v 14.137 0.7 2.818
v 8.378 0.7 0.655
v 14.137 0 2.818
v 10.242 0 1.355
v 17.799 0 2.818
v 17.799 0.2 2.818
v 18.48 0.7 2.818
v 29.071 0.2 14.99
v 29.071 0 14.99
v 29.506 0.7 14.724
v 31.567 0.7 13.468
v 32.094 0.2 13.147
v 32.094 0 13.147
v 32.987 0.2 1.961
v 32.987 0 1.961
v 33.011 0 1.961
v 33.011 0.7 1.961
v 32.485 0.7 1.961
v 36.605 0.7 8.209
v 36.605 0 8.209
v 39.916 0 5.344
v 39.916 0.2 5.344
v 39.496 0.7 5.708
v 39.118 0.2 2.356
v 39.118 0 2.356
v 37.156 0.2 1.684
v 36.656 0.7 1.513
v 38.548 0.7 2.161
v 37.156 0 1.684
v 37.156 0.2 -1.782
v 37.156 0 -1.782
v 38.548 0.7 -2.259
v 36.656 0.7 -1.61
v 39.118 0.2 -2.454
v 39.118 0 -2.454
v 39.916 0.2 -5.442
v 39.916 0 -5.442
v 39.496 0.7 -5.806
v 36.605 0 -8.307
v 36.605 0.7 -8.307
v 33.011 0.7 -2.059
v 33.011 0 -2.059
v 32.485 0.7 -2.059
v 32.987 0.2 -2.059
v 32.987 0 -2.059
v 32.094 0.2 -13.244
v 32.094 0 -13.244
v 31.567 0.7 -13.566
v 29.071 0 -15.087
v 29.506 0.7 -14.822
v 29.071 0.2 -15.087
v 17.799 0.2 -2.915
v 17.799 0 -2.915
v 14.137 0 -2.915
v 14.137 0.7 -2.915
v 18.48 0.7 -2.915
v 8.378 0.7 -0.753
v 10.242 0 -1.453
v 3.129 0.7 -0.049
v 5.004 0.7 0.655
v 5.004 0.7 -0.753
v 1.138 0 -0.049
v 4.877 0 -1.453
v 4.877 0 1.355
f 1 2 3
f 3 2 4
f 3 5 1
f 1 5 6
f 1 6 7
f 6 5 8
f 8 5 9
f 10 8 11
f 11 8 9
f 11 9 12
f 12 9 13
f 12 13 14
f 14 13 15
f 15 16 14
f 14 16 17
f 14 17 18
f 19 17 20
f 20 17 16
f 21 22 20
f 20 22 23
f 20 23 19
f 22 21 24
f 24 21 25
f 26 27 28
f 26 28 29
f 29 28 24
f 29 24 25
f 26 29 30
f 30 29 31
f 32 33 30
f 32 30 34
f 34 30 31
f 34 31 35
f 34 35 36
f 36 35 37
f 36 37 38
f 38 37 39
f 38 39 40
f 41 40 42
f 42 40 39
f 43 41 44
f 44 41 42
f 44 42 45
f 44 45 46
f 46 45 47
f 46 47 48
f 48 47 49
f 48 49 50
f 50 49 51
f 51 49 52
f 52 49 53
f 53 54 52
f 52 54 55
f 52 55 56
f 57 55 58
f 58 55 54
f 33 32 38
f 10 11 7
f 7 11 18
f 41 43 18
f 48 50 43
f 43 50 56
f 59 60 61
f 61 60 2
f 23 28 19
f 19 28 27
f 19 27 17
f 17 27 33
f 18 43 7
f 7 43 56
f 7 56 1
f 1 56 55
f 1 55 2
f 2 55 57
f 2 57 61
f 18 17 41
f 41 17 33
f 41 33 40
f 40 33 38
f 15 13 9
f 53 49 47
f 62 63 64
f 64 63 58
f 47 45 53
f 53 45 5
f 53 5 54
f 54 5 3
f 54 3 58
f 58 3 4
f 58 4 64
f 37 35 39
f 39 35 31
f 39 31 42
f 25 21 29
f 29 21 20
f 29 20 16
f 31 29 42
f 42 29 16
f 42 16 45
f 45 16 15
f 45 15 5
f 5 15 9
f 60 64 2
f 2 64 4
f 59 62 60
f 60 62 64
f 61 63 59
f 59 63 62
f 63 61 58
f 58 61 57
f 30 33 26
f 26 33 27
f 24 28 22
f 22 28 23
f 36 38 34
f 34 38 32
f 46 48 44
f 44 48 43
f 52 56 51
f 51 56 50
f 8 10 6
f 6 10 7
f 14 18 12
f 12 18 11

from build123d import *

# Parameters (mm, degrees)
BOSS_EXTRUDE1_DEPTH = 0.7
CHAMFER1_SIZE       = 1
CHAMFER2_SIZE       = 0.5


with BuildPart() as part:
    # Sketch1 → Boss-Extrude1 (new body)
    with BuildSketch(Plane(origin=(0, 0, 0), x_dir=(1, 0, 0), z_dir=(0, 1, 0))):
        Polygon((0.284238857, 0.048748246), (4.822239021, 1.752850979), (11.041039678, 1.752850979), (14.137088798, 2.915474508), (17.798659013, 2.915474508), (29.070766186, 15.087446012), (32.094208001, 13.244081421), (32.986673125, 2.05865414), (33.011493829, 2.05865414), (36.605140674, 8.306952125), (39.91645027, 5.441925055), (39.11764025, 2.453830764), (37.15585938, 1.781640495), (37.15585938, -1.684144002), (39.11764025, -2.356334271), (39.91645027, -5.344428562), (36.605140674, -8.209455633), (33.011493829, -1.961157647), (32.986673125, -1.961157647), (32.094208001, -13.146584929), (29.070766186, -14.98994952), (17.798659013, -2.817978016), (14.137088798, -2.817978016), (11.041039678, -1.655354487), (4.822239021, -1.655354487), align=None)
    extrude(amount=BOSS_EXTRUDE1_DEPTH)

    # Chamfer1
    # the kernel refuses this chamfer: 1 mm, written as the material it takes off along each edge
    with BuildSketch(Plane(origin=(2.250556033, 0.7, -1.752850979), x_dir=(0, -0.9996219169112968, -0.02749587661058627), z_dir=(1, 0, 0))) as chamfer1_piece_1_section:
        Polygon((CHAMFER1_SIZE * 0.999621916911, -CHAMFER1_SIZE * 0.0274958766106), (-CHAMFER1_SIZE * 0.0274958766106, -CHAMFER1_SIZE * 0.999621916911), (0, 0), align=None)
    chamfer1_piece_1 = extrude(amount=11.362166633, mode=Mode.PRIVATE)
    chamfer1_piece_1 = split(chamfer1_piece_1, bisect_by=Plane(origin=(6.727578787, 0.358780421, -0.133066883), z_dir=(-0.3515489139570331, 0, -0.9361695151497034)), keep=Keep.TOP, mode=Mode.PRIVATE)
    add(chamfer1_piece_1, mode=Mode.SUBTRACT)
    with BuildSketch(Plane(origin=(-2.123292359, 0.7, 0.855324115), x_dir=(-0.00966614556074823, -0.9996219169112968, -0.025740801475148727), z_dir=(0.9361695151497034, 0, -0.351548913957033)), Plane(origin=(7.229770237, 0.7, 2.559426848), x_dir=(-0.00966614556074825, -0.9996219169112968, 0.025740801475148775), z_dir=(-0.9361695151497034, 0, -0.351548913957033))) as chamfer1_piece_2:
        Polygon((CHAMFER1_SIZE * 0.999621916911, -CHAMFER1_SIZE * 0.0274958766106), (-CHAMFER1_SIZE * 0.0274958766106, -CHAMFER1_SIZE * 0.999621916911), (0, 0), align=None)
    extrude(amount=9.990778854, mode=Mode.SUBTRACT)
    with BuildSketch(Plane(origin=(13.612722666, 0.7, 1.655354487), x_dir=(0, -0.9996219169112968, 0.02749587661058627), z_dir=(-1, 0, 0))) as chamfer1_piece_3_section:
        Polygon((CHAMFER1_SIZE * 0.999621916911, -CHAMFER1_SIZE * 0.0274958766106), (-CHAMFER1_SIZE * 0.0274958766106, -CHAMFER1_SIZE * 0.999621916911), (0, 0), align=None)
    chamfer1_piece_3 = extrude(amount=11.362166633, mode=Mode.PRIVATE)
    chamfer1_piece_3 = split(chamfer1_piece_3, bisect_by=Plane(origin=(6.727578787, 0.358780421, 0.035570391), z_dir=(-0.3515489139570331, 0, 0.9361695151497034)), keep=Keep.TOP, mode=Mode.PRIVATE)
    add(chamfer1_piece_3, mode=Mode.SUBTRACT)

    # Chamfer2
    chamfer2_edges = [part.edges().sort_by_distance(p)[0] for p in [
        (23.4347126, 0.7, 8.903963768),
        (32.540440563, 0.7, 7.553871288),
        (39.51704526, 0.7, 3.850381417),
        (37.15585938, 0.7, -0.048748246),
        (39.51704526, 0.7, -3.947877909),
        (32.540440563, 0.7, -7.65136778),
        (23.4347126, 0.7, -9.00146026),
    ]]
    chamfer(chamfer2_edges, length=CHAMFER2_SIZE)


solid = part.part
